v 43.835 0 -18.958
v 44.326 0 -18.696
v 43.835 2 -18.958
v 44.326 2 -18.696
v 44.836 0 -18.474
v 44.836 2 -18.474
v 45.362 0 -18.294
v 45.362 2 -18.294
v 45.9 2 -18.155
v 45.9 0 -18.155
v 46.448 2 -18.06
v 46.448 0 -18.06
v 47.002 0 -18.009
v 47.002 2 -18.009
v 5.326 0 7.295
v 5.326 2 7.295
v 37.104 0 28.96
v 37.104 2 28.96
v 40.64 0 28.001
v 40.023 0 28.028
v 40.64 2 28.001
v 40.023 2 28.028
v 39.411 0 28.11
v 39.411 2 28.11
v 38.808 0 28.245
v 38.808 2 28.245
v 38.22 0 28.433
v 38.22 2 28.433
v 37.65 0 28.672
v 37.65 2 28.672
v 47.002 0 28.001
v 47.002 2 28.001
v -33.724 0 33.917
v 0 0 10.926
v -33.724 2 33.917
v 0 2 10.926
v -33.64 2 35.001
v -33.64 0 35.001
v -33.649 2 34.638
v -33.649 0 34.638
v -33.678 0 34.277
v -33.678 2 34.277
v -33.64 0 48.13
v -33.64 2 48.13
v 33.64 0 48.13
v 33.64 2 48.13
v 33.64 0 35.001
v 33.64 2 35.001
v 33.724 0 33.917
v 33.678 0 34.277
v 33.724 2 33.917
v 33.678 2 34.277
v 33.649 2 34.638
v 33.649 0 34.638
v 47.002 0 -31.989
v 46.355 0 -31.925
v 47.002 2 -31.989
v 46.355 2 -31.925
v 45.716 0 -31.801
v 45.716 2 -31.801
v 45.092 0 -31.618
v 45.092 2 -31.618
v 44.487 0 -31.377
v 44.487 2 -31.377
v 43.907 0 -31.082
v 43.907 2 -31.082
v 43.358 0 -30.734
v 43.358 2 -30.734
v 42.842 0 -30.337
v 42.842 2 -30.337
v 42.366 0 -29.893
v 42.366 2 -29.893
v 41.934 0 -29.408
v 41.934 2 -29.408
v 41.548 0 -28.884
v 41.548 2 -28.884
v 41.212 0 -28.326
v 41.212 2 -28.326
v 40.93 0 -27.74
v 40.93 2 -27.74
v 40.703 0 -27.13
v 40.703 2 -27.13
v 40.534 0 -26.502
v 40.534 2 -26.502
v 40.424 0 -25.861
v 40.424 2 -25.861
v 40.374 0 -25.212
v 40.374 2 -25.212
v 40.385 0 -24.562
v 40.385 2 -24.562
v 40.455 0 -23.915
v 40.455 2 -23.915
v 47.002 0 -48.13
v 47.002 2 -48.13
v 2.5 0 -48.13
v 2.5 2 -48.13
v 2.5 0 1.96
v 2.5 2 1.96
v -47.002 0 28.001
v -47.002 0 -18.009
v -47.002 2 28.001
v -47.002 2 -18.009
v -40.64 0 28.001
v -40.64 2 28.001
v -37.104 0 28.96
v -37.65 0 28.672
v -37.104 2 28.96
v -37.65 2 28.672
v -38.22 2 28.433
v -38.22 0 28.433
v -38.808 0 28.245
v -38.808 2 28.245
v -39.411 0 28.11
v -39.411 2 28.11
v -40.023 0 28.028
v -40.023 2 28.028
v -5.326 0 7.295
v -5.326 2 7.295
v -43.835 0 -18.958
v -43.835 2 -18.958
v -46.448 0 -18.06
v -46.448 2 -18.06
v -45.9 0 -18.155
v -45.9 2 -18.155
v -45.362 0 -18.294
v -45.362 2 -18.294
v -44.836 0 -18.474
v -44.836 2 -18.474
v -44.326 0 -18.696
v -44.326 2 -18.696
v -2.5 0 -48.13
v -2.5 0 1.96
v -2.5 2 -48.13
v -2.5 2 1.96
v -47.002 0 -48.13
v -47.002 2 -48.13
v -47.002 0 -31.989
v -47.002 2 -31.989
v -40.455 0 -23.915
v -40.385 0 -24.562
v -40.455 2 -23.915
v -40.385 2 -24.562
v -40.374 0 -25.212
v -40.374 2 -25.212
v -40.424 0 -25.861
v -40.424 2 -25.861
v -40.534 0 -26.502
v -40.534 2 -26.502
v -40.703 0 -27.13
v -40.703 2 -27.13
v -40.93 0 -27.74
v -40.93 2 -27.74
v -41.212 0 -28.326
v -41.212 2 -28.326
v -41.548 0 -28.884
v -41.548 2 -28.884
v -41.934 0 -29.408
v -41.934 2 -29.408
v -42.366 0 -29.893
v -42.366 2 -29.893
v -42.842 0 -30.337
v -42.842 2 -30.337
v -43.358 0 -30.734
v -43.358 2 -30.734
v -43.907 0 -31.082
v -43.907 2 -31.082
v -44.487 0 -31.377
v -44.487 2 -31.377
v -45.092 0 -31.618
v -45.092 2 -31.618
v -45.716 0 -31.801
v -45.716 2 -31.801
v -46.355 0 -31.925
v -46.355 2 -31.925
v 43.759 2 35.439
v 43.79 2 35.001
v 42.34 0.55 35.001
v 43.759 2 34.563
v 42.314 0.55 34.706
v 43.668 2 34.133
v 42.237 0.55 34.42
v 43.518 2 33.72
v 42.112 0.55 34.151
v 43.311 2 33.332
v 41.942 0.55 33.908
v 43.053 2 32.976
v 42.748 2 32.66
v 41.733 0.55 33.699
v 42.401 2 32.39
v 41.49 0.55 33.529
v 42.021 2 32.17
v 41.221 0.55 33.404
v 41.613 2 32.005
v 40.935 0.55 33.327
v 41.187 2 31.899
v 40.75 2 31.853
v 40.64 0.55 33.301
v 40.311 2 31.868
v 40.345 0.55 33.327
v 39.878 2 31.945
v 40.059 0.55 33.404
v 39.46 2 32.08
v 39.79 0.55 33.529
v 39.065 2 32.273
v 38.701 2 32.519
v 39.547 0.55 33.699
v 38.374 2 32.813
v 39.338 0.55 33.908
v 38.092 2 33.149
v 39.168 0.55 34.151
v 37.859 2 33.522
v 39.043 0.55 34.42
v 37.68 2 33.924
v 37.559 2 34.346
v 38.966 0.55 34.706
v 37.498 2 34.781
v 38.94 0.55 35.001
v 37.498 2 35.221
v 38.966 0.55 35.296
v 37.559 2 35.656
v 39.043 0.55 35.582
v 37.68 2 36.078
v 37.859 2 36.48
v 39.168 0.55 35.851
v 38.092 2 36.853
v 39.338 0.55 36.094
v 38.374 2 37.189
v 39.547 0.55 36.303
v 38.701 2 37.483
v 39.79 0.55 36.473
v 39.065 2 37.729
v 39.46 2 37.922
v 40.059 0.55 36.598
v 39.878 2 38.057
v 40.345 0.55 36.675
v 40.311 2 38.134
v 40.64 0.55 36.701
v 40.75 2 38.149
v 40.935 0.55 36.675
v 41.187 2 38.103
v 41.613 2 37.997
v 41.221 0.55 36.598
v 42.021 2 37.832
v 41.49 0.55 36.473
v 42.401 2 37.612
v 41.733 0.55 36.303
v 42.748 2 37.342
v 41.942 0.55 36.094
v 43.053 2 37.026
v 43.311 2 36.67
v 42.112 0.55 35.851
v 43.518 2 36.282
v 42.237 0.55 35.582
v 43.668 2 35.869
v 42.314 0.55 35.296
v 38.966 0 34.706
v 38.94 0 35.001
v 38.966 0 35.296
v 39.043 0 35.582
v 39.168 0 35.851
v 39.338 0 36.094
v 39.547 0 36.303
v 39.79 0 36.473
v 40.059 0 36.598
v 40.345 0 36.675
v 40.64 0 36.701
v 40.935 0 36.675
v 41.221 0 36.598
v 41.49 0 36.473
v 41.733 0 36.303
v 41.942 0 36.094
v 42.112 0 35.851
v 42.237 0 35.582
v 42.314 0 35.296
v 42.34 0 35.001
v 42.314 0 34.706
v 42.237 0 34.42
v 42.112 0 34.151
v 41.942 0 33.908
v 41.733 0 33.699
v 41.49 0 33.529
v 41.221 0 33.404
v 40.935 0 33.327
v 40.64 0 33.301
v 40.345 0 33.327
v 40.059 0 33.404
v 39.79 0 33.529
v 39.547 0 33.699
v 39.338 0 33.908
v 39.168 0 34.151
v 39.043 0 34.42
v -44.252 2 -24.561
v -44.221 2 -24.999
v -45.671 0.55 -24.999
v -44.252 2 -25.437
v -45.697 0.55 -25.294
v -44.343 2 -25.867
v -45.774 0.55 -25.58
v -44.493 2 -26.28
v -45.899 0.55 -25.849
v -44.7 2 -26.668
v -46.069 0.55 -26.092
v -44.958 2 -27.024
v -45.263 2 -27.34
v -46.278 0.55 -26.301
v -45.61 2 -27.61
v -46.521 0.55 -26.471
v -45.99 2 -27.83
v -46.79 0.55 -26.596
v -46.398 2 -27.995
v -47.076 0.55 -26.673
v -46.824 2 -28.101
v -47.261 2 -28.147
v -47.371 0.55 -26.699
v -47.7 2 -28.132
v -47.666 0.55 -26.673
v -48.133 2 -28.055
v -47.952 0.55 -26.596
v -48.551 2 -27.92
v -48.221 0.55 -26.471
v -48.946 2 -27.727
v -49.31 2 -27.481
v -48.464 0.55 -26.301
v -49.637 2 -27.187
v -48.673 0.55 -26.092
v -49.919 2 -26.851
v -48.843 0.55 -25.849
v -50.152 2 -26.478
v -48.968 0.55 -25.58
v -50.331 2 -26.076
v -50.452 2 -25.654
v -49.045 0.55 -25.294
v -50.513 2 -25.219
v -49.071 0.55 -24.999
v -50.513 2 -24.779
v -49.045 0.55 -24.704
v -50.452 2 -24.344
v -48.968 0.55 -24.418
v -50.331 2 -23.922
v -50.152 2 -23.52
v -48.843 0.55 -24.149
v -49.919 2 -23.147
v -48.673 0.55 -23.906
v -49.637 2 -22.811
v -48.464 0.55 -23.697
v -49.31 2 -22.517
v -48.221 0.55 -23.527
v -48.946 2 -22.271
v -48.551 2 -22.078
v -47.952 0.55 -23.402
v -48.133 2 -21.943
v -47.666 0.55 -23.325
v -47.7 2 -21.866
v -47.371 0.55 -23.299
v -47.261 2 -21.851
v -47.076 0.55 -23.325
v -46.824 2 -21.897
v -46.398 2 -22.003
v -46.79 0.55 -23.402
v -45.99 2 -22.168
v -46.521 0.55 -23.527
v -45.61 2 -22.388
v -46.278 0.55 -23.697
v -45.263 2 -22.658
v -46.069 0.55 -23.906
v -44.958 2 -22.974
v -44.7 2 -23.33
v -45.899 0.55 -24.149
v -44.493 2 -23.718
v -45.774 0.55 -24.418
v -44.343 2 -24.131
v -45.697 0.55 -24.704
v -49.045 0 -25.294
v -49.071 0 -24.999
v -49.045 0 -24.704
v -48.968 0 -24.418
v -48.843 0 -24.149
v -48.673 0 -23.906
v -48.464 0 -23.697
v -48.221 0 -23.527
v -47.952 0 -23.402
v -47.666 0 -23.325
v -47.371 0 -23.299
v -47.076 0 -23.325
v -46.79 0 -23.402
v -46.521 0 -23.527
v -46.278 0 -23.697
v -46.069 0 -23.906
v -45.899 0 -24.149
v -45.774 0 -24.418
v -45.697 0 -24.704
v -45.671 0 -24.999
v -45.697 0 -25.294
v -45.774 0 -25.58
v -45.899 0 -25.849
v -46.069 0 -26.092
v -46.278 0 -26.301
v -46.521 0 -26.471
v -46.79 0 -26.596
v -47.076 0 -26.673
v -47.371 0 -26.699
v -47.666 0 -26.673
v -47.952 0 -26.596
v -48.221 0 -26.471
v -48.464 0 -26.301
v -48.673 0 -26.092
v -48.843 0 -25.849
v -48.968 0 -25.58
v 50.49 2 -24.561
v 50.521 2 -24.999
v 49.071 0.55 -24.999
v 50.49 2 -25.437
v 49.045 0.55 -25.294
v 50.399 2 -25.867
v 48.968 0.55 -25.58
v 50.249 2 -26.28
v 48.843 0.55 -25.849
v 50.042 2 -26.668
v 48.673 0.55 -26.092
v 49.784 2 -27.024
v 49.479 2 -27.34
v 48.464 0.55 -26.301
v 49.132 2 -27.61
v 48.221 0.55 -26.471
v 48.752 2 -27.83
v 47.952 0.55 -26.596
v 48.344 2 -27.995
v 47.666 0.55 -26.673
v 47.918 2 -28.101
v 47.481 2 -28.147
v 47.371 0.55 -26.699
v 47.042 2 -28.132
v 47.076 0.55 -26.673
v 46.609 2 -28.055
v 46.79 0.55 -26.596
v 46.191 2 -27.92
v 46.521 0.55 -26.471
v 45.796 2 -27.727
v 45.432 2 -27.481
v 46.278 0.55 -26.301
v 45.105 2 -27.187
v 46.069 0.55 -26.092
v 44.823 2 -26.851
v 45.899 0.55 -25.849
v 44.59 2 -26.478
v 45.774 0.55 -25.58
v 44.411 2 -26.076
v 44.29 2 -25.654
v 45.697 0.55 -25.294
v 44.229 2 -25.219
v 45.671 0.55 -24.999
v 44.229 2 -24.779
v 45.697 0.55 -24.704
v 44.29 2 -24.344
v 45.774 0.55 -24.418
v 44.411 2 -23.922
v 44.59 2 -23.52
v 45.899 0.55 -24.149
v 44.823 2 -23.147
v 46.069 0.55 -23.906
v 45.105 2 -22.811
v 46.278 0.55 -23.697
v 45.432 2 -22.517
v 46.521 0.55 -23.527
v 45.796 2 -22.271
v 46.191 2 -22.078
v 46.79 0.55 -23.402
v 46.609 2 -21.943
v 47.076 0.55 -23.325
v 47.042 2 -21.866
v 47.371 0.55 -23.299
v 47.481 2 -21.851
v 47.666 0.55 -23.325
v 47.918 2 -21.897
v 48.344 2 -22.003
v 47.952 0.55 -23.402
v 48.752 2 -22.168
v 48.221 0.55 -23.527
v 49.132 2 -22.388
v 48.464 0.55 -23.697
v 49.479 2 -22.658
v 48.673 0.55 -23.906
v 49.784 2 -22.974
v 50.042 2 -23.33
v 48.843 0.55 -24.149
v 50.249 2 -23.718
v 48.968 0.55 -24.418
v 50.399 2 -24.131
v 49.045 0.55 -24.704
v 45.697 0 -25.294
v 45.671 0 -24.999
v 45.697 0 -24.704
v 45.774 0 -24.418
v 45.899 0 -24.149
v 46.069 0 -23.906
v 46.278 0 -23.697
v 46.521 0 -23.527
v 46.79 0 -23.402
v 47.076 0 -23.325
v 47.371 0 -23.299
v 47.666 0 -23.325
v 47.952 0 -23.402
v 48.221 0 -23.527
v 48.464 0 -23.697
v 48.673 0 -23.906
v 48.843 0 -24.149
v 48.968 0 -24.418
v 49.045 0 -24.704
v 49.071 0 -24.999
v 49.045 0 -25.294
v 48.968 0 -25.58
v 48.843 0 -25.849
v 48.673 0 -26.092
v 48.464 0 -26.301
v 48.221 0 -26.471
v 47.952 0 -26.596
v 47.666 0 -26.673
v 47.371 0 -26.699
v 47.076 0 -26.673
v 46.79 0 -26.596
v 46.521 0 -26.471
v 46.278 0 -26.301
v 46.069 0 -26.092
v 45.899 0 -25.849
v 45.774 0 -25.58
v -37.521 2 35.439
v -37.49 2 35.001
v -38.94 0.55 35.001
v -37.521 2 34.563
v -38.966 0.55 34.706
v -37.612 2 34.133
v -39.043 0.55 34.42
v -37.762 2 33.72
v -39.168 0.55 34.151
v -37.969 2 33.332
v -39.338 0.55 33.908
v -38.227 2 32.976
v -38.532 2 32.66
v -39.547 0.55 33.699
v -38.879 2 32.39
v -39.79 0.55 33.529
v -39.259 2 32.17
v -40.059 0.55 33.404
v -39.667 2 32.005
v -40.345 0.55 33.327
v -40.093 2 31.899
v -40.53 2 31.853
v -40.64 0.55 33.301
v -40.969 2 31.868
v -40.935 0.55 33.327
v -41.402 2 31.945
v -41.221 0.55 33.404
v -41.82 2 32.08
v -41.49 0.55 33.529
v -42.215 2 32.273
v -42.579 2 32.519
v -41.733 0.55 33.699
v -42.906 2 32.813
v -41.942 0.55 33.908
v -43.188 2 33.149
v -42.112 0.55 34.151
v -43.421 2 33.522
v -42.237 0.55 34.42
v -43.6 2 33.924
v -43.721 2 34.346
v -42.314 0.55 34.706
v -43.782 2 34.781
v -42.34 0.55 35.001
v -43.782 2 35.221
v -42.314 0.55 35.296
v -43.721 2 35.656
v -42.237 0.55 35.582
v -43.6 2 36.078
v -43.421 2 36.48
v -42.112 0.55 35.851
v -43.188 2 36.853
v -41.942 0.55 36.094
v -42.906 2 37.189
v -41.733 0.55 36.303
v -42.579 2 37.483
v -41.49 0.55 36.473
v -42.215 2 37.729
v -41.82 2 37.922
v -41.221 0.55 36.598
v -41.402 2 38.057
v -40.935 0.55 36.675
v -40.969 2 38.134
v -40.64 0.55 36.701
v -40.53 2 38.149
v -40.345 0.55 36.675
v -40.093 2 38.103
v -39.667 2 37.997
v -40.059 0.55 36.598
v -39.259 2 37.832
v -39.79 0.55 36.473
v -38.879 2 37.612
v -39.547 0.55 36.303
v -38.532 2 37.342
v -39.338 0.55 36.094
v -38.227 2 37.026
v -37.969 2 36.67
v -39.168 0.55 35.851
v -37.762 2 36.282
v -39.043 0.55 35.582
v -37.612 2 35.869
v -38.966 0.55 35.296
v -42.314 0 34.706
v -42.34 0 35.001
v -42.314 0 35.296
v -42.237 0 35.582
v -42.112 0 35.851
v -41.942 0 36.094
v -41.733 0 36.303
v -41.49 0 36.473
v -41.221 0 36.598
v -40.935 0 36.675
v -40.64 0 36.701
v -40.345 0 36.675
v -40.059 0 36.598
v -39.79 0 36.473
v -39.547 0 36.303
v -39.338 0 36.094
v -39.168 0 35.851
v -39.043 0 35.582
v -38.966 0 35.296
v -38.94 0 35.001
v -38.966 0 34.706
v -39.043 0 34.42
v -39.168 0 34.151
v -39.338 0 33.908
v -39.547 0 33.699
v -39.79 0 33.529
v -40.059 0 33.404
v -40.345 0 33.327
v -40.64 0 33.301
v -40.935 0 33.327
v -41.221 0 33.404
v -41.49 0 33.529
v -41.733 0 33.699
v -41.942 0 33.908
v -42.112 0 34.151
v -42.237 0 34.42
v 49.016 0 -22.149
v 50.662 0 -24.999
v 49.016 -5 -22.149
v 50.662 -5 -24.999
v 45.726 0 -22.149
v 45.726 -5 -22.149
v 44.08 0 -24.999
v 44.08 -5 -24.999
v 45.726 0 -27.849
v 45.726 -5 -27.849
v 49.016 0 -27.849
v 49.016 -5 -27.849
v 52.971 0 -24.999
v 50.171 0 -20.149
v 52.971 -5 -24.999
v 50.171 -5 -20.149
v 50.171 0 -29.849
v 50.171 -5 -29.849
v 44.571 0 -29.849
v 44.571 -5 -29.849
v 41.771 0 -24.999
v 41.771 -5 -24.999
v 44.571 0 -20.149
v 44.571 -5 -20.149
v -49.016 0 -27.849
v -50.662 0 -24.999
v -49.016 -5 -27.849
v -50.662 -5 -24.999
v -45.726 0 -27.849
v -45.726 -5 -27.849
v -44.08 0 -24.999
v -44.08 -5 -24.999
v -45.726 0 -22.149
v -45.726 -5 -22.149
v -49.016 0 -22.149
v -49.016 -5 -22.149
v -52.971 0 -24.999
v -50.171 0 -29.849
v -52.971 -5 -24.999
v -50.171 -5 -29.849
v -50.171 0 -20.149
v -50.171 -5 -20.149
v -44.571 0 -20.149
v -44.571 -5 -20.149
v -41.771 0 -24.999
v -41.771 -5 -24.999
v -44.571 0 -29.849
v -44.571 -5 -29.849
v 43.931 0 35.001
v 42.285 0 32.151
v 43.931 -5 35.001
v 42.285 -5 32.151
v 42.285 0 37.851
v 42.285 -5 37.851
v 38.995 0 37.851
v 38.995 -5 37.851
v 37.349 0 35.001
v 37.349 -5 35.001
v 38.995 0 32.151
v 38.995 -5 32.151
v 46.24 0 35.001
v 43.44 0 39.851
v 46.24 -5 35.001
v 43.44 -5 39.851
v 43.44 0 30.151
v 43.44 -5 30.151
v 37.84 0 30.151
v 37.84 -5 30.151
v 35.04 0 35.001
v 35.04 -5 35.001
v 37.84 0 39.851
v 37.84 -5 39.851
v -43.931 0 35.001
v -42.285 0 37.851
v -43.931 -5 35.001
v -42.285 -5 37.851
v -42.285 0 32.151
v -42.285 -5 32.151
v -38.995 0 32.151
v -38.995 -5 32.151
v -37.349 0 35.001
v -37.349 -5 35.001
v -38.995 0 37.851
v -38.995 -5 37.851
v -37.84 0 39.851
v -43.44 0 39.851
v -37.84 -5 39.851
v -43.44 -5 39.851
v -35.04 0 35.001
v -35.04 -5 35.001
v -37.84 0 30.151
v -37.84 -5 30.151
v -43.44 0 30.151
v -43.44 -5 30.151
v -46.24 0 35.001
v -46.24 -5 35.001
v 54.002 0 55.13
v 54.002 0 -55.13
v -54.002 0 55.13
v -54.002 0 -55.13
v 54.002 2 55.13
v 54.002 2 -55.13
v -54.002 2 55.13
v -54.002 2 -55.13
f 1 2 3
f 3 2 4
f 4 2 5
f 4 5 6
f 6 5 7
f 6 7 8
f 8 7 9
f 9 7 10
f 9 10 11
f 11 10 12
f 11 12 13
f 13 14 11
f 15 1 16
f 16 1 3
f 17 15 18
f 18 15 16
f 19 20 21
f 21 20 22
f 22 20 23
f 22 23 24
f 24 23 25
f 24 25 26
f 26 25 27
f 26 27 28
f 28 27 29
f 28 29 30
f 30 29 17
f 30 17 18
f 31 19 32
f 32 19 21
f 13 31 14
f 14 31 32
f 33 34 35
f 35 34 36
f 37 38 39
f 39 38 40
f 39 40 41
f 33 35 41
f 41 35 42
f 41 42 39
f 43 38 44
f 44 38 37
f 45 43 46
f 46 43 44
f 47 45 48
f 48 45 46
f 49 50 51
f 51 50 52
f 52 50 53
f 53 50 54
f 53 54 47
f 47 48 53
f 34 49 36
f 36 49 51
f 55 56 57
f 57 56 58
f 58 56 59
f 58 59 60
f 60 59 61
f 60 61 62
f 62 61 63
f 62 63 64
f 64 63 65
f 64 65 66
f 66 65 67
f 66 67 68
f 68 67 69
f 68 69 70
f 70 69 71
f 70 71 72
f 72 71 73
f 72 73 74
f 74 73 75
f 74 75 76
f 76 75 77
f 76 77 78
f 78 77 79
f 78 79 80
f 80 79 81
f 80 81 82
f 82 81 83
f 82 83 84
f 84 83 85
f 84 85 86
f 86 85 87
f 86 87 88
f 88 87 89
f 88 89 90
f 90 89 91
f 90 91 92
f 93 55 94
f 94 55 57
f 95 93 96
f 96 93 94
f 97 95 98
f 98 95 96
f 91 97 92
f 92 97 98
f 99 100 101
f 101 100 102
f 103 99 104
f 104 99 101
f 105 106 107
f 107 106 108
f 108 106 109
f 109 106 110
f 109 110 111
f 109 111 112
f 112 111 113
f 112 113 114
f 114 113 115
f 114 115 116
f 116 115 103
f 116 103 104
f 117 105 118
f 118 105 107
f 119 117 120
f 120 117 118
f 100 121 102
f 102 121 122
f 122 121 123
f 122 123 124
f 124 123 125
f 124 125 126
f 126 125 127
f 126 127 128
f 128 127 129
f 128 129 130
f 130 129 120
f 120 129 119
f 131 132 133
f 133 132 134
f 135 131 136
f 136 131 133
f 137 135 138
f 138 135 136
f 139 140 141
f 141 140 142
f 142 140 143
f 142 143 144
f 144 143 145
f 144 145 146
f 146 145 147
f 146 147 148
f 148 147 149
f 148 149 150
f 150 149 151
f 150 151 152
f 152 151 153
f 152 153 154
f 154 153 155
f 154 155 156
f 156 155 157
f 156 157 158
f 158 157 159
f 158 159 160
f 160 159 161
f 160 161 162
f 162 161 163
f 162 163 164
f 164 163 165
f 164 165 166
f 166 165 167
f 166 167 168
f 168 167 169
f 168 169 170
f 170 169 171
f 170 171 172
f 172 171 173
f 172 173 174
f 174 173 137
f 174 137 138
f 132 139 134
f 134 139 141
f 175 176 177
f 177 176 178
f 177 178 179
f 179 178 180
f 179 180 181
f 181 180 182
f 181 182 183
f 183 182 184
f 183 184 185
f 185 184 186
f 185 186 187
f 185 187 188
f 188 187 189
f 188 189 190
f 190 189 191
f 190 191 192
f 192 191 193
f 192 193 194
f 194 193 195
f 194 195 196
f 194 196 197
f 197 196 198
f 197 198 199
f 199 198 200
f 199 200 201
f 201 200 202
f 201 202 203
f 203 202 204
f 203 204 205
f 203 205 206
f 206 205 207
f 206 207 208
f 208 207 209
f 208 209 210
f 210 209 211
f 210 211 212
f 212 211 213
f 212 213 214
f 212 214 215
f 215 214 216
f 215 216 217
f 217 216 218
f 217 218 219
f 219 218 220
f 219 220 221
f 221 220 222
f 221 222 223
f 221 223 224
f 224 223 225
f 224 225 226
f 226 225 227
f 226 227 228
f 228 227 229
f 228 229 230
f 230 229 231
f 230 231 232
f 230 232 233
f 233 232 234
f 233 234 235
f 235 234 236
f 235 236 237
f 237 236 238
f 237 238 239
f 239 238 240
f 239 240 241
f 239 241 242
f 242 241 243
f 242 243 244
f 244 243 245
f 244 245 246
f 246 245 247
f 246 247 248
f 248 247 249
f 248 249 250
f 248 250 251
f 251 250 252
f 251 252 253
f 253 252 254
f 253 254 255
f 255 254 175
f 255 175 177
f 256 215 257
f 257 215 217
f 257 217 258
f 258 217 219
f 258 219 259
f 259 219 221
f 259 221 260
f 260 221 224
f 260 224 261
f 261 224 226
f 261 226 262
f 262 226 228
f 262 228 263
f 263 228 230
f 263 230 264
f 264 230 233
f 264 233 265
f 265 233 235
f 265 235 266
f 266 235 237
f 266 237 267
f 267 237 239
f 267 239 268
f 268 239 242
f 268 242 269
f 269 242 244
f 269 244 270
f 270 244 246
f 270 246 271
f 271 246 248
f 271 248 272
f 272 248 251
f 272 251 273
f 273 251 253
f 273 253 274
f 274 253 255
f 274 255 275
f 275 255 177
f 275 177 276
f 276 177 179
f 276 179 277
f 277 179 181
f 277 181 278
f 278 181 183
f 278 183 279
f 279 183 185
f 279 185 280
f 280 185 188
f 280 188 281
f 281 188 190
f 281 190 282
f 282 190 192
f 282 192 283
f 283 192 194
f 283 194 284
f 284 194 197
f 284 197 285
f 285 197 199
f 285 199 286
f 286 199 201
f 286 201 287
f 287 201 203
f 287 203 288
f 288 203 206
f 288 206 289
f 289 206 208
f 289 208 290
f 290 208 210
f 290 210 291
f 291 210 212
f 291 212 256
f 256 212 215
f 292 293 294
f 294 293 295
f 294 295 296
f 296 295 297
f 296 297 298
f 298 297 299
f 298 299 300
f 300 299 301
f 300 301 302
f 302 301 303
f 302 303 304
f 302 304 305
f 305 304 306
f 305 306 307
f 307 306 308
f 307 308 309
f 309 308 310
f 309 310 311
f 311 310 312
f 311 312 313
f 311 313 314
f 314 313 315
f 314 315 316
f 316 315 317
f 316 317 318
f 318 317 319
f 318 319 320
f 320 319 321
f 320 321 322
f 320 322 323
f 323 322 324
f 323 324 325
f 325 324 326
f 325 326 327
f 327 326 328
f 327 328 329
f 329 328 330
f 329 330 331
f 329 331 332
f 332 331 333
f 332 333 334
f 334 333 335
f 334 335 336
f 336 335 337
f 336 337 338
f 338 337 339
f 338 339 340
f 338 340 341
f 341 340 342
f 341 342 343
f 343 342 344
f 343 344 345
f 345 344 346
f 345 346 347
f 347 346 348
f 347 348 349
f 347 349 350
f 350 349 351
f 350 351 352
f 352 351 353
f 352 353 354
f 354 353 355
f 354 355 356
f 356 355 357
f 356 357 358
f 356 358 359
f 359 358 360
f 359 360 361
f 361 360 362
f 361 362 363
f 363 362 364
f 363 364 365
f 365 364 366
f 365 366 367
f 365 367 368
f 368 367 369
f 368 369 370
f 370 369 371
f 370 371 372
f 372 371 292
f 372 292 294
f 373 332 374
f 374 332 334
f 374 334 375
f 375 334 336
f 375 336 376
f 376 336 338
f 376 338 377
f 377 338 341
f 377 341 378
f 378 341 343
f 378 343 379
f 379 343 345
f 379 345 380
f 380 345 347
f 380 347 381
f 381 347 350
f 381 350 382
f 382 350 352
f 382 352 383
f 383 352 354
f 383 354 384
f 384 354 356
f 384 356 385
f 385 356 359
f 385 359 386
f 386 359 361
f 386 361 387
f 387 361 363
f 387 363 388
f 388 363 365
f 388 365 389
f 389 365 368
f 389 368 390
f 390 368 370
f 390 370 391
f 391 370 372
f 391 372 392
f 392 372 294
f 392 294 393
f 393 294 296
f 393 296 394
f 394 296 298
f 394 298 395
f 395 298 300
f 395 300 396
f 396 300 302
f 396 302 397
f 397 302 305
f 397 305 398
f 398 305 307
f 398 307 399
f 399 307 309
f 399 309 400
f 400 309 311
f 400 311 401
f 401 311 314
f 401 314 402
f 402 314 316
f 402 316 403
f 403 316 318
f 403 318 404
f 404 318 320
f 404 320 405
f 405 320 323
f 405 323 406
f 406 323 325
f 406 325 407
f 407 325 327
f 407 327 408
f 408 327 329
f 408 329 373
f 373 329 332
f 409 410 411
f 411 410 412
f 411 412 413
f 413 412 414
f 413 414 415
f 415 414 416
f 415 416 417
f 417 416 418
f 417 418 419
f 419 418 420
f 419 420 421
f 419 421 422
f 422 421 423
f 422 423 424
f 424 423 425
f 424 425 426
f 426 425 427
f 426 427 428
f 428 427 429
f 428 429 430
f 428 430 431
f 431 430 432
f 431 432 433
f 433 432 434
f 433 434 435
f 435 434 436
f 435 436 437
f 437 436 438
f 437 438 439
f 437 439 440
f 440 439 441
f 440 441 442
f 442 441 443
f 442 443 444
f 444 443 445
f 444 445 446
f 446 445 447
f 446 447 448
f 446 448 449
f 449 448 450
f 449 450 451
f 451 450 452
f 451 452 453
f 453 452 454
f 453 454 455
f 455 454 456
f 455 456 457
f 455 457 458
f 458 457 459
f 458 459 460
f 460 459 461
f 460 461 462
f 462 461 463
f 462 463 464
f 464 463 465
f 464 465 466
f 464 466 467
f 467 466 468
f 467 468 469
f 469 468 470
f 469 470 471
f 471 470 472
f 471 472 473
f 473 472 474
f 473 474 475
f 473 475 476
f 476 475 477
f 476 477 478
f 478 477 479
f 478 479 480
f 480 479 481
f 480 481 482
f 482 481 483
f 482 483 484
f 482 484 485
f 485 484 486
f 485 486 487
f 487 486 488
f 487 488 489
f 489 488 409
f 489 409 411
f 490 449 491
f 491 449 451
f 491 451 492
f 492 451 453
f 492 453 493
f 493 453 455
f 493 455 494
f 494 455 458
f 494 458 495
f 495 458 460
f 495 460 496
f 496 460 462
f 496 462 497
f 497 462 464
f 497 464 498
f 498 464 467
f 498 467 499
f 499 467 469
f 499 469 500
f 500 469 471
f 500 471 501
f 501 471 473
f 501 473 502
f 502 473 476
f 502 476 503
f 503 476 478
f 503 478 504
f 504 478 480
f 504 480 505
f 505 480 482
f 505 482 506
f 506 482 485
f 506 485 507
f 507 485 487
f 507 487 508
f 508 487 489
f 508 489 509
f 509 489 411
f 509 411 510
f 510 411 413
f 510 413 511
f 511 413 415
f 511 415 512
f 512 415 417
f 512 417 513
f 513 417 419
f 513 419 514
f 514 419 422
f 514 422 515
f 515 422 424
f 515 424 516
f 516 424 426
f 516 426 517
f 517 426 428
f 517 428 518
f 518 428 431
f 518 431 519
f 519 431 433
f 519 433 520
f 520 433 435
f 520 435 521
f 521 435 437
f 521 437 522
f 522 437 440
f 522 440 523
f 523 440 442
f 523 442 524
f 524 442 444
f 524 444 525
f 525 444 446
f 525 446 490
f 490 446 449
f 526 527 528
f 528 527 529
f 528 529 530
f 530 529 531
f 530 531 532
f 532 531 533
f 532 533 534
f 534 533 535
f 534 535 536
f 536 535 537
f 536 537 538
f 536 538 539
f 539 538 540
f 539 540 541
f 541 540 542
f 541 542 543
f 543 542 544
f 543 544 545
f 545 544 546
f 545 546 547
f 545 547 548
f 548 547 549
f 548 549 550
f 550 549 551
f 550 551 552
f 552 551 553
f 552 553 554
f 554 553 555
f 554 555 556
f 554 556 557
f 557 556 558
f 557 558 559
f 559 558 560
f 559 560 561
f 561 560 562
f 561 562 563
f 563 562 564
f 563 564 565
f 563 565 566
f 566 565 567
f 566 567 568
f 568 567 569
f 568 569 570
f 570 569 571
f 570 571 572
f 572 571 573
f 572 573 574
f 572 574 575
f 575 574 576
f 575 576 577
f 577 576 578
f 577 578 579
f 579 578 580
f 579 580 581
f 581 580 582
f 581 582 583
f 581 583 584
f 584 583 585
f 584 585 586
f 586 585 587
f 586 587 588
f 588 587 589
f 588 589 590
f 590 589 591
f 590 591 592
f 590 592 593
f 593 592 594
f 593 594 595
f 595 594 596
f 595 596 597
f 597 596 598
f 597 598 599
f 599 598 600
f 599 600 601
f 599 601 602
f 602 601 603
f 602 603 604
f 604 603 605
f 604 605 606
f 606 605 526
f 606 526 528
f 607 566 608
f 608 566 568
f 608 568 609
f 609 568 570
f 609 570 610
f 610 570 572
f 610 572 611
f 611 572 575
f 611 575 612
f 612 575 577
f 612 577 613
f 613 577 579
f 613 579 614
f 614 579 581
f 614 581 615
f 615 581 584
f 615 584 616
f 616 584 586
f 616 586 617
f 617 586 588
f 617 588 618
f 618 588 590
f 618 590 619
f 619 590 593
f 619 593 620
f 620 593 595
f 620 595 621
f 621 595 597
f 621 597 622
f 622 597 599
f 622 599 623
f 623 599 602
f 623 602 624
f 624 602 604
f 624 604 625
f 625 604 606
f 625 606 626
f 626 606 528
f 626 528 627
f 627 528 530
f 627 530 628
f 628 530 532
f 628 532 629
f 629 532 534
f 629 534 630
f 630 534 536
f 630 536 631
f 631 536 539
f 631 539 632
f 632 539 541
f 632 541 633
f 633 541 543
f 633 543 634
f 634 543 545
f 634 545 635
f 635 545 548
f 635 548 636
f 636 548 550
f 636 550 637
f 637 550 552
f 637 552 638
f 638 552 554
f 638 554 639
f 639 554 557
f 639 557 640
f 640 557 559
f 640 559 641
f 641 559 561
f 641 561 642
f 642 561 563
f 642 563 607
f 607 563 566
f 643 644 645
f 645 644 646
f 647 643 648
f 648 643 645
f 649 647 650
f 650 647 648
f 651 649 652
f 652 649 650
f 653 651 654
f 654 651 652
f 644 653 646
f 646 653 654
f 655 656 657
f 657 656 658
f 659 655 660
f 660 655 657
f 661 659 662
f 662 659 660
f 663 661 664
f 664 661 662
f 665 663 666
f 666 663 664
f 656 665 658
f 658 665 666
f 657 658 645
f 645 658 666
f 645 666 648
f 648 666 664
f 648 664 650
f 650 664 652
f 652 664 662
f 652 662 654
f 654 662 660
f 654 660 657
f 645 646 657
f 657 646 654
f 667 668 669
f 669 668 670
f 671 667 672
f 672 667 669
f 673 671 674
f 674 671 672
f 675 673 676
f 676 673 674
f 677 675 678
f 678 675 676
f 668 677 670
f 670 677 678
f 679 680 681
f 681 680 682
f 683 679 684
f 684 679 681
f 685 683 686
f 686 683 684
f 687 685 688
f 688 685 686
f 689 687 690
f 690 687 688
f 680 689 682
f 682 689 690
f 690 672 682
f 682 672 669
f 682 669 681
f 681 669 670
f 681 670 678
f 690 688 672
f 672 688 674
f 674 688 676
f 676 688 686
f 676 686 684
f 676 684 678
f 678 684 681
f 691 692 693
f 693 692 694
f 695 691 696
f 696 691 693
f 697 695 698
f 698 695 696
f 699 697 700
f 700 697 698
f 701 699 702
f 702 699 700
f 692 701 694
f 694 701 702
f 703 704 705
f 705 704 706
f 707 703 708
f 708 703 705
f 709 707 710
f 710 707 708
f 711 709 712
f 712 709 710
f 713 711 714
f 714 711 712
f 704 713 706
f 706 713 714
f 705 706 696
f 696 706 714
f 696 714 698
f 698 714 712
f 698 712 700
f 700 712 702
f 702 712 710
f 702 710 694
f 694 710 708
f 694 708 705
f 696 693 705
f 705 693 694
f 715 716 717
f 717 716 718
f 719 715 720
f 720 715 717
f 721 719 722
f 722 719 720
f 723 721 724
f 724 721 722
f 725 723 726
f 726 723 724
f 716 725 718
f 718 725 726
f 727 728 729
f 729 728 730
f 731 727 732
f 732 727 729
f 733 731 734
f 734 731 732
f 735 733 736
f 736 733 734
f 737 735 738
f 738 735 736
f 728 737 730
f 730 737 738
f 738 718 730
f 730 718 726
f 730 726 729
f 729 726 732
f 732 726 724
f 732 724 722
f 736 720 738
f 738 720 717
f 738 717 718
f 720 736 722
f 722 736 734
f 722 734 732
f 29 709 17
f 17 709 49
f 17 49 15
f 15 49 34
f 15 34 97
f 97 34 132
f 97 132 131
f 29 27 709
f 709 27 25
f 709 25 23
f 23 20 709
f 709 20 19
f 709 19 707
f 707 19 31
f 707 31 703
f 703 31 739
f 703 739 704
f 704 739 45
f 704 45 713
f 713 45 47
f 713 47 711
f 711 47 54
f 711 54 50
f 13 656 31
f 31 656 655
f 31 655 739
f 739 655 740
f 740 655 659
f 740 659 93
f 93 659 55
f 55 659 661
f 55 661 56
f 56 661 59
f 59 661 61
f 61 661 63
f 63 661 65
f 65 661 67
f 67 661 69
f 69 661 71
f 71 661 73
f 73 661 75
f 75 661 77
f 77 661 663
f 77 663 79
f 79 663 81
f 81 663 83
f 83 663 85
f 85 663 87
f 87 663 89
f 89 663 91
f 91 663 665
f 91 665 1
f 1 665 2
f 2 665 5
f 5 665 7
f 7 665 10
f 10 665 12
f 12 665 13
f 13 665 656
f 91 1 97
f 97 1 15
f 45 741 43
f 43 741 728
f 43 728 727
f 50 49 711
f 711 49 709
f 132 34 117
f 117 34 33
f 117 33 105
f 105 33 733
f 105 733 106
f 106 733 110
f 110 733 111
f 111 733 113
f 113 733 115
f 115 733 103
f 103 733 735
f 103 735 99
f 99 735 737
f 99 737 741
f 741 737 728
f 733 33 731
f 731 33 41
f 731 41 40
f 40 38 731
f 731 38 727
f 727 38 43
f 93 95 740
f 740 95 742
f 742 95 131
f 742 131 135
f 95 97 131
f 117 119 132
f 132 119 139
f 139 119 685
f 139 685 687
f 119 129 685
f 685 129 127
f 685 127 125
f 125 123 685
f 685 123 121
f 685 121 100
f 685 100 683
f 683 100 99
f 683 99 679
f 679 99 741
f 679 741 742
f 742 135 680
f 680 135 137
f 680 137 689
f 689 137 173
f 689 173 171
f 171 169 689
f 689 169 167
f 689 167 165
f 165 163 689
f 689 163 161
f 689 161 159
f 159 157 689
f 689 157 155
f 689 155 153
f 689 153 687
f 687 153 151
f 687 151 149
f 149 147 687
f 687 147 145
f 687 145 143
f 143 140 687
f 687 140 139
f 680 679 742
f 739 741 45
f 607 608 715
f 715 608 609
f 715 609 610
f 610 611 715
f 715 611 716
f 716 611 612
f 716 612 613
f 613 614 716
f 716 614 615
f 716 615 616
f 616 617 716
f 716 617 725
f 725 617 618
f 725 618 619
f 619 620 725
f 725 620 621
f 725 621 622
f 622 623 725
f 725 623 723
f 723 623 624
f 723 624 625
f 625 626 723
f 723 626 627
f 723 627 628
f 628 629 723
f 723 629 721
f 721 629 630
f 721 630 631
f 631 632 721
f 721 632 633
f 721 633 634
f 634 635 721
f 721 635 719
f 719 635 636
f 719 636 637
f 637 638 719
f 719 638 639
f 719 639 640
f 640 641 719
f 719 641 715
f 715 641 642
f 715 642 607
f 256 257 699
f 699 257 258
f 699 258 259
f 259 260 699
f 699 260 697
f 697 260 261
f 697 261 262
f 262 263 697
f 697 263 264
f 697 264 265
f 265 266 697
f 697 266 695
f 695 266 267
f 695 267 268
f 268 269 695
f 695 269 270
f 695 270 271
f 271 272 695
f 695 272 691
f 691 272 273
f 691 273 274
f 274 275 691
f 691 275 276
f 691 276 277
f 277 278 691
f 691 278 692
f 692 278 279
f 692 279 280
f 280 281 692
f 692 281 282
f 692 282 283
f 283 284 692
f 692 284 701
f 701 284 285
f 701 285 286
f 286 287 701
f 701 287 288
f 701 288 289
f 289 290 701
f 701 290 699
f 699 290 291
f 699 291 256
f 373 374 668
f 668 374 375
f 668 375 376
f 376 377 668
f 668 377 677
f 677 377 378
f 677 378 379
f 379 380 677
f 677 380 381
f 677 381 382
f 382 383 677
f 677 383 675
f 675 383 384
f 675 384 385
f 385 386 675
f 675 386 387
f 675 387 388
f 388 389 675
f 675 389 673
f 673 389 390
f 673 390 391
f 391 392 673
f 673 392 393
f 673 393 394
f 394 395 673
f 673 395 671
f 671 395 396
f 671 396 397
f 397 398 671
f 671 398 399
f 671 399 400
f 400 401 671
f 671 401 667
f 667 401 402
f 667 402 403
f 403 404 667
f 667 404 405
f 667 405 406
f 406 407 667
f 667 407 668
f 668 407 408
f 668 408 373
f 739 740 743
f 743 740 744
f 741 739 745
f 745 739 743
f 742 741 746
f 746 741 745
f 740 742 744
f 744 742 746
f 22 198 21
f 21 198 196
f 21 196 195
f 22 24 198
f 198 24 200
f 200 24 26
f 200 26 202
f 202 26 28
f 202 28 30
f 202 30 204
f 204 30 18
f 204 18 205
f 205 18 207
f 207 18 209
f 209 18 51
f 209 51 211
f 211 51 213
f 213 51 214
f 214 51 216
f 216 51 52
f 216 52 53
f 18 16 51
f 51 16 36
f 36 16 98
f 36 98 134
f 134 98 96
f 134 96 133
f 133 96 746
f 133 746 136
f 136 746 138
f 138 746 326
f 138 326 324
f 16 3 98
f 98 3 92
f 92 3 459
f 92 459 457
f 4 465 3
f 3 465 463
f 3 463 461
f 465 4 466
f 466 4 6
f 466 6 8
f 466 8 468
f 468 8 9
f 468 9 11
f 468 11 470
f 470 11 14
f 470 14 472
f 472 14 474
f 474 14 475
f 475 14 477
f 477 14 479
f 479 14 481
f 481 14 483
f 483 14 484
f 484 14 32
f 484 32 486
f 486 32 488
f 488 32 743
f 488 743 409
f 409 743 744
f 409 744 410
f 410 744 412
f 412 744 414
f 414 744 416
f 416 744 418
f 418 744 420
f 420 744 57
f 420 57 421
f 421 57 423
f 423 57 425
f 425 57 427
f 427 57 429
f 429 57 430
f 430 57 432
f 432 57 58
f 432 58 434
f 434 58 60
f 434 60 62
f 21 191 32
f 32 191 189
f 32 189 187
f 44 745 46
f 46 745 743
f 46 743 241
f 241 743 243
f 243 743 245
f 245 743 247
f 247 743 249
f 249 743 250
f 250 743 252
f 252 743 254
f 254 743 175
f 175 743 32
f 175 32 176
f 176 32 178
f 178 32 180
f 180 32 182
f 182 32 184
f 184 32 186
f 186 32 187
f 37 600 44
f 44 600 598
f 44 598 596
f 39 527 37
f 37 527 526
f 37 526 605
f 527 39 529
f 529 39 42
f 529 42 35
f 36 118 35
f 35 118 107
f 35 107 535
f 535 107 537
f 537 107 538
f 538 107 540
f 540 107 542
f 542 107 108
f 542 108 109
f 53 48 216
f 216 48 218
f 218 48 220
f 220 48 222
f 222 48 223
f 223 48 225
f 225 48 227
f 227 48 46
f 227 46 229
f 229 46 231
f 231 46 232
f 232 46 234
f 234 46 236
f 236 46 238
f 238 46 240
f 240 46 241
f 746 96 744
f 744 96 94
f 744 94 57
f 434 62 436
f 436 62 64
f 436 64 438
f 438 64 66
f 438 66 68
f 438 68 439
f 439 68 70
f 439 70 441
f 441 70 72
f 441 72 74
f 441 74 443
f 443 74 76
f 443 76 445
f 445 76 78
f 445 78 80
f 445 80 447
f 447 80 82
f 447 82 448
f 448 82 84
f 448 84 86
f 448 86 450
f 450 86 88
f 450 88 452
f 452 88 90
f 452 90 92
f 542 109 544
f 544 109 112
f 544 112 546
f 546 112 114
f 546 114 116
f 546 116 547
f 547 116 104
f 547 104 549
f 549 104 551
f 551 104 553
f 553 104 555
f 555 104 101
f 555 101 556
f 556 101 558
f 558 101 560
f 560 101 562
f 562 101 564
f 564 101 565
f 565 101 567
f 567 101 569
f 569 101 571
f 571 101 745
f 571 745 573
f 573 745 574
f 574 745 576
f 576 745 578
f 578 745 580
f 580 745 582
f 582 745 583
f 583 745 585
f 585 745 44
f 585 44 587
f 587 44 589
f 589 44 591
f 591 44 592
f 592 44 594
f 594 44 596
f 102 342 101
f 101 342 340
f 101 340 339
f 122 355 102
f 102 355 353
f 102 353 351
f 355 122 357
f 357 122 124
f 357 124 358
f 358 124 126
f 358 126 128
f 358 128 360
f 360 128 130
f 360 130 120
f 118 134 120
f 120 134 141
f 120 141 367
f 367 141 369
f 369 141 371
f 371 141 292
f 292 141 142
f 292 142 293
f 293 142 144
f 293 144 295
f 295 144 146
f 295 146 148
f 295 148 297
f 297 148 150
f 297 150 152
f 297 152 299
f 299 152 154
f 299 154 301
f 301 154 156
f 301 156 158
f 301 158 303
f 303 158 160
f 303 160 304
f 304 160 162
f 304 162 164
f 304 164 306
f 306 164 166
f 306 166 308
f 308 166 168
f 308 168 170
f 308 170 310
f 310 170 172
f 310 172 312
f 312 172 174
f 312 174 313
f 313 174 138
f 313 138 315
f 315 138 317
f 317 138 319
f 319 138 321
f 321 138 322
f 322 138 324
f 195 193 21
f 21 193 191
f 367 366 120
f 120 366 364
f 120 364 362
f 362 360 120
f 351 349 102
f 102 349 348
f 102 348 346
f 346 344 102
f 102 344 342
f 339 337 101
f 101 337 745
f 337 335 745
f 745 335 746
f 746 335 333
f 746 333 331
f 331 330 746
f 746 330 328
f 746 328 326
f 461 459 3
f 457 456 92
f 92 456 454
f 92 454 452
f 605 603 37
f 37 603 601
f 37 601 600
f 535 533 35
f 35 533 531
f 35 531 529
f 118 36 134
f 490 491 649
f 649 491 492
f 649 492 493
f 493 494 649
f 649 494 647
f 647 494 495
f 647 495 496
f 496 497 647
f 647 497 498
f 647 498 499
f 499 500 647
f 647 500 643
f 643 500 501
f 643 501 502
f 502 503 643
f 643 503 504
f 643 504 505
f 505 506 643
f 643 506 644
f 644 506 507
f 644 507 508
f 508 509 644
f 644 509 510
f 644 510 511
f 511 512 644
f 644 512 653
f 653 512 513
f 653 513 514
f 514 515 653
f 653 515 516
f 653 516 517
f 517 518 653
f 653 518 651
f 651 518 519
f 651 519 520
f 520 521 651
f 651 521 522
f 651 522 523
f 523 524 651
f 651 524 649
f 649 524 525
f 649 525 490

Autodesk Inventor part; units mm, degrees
ref_plane "YZ Plane" through (0, 0, 0) normal (1, 0, 0) x (0, 1, 0)
ref_plane "XZ Plane" through (0, 0, 0) normal (0, 1, 0) x (-1, 0, 0)
ref_plane "XY Plane" through (0, 0, 0) normal (0, 0, 1) x (1, 0, 0)
sketch "Sketch1" plane through (0, 0, 0) normal (0, 1, 0) x (-1, 0, 0)
  circle A0 centre (0, 0) radius 80 construction
  line L0 (56.002, 57.1295) -> (-56.002, 57.1295) construction
  line L1 (-56.002, 57.1295) -> (-56.002, -57.1295) construction
  line L2 (-56.002, -57.1295) -> (56.002, -57.1295) construction
  line L3 (56.002, -57.1295) -> (56.002, 57.1295) construction
  line L4 (56.002, 57.1295) -> (-56.002, -57.1295) construction
  line L5 (-56.002, 57.1295) -> (56.002, -57.1295) construction
  line L6 (54.002, 55.1295) -> (-54.002, 55.1295)
  line L7 (-54.002, 55.1295) -> (-54.002, -55.1295)
  line L8 (-54.002, -55.1295) -> (54.002, -55.1295)
  line L9 (54.002, -55.1295) -> (54.002, 55.1295)
  dimension "d0" = 160
  dimension "d1" = 2
extrude "Extrusion1" add sketch "Sketch1" along normal blind 2
sketch "Sketch2" plane through (0, 0, 0) normal (0, -1, 0) x (1, 0, 0)
  line L0 (-39.0523, 32.251) -> (-42.2277, 32.251) construction
  line L1 (-42.2277, 32.251) -> (-43.8154, 35.001) construction
  line L2 (-43.8154, 35.001) -> (-42.2277, 37.751) construction
  line L3 (-42.2277, 37.751) -> (-39.0523, 37.751) construction
  line L4 (-39.0523, 37.751) -> (-37.4646, 35.001) construction
  line L5 (-37.4646, 35.001) -> (-39.0523, 32.251) construction
  line L6 (42.2277, 32.251) -> (39.0523, 32.251) construction
  line L7 (39.0523, 32.251) -> (37.4646, 35.001) construction
  line L8 (37.4646, 35.001) -> (39.0523, 37.751) construction
  line L9 (39.0523, 37.751) -> (42.2277, 37.751) construction
  line L10 (42.2277, 37.751) -> (43.8154, 35.001) construction
  line L11 (43.8154, 35.001) -> (42.2277, 32.251) construction
  line L12 (48.9587, -27.749) -> (45.7833, -27.749) construction
  line L13 (45.7833, -27.749) -> (44.1956, -24.999) construction
  line L14 (44.1956, -24.999) -> (45.7833, -22.249) construction
  line L15 (45.7833, -22.249) -> (48.9587, -22.249) construction
  line L16 (48.9587, -22.249) -> (50.5464, -24.999) construction
  line L17 (50.5464, -24.999) -> (48.9587, -27.749) construction
  line L18 (-45.7833, -22.249) -> (-44.1956, -24.999) construction
  line L19 (-44.1956, -24.999) -> (-45.7833, -27.749) construction
  line L20 (-45.7833, -27.749) -> (-48.9587, -27.749) construction
  line L21 (-48.9587, -27.749) -> (-50.5464, -24.999) construction
  line L22 (-50.5464, -24.999) -> (-48.9587, -22.249) construction
  line L23 (-48.9587, -22.249) -> (-45.7833, -22.249) construction
  line L24 (-47.371, -24.999) -> (47.371, -24.999) construction
  line L25 (-40.64, 35.001) -> (40.64, 35.001) construction
  line L26 (-75.6027, 0) -> (75.6027, 0) construction
  line L27 (0, -77.1813) -> (0, 77.1813) construction
  line L28 (-37.3491, 35.001) -> (-38.9946, 37.851)
  line L29 (-38.9946, 37.851) -> (-42.2854, 37.851)
  line L30 (-42.2854, 37.851) -> (-43.9309, 35.001)
  line L31 (-43.9309, 35.001) -> (-42.2854, 32.151)
  line L32 (-42.2854, 32.151) -> (-38.9946, 32.151)
  line L33 (-38.9946, 32.151) -> (-37.3491, 35.001)
  line L34 (49.0164, -27.849) -> (45.7256, -27.849)
  line L35 (45.7256, -27.849) -> (44.0801, -24.999)
  line L36 (44.0801, -24.999) -> (45.7256, -22.149)
  line L37 (45.7256, -22.149) -> (49.0164, -22.149)
  line L38 (49.0164, -22.149) -> (50.6619, -24.999)
  line L39 (50.6619, -24.999) -> (49.0164, -27.849)
  line L40 (43.9309, 35.001) -> (42.2854, 37.851)
  line L41 (42.2854, 37.851) -> (38.9946, 37.851)
  line L42 (38.9946, 37.851) -> (37.3491, 35.001)
  line L43 (37.3491, 35.001) -> (38.9946, 32.151)
  line L44 (38.9946, 32.151) -> (42.2854, 32.151)
  line L45 (42.2854, 32.151) -> (43.9309, 35.001)
  line L46 (-45.7256, -27.849) -> (-44.0801, -24.999)
  line L47 (-44.0801, -24.999) -> (-45.7256, -22.149)
  line L48 (-45.7256, -22.149) -> (-49.0164, -22.149)
  line L49 (-49.0164, -22.149) -> (-50.6619, -24.999)
  line L50 (-50.6619, -24.999) -> (-49.0164, -27.849)
  line L51 (-49.0164, -27.849) -> (-45.7256, -27.849)
  line L52 (-35.0397, 35.001) -> (-37.8399, 39.851)
  line L53 (-37.8399, 39.851) -> (-43.4401, 39.851)
  line L54 (-43.4401, 39.851) -> (-46.2403, 35.001)
  line L55 (-46.2403, 35.001) -> (-43.4401, 30.151)
  line L56 (-43.4401, 30.151) -> (-37.8399, 30.151)
  line L57 (-37.8399, 30.151) -> (-35.0397, 35.001)
  line L58 (46.2403, 35.001) -> (43.4401, 39.851)
  line L59 (43.4401, 39.851) -> (37.8399, 39.851)
  line L60 (37.8399, 39.851) -> (35.0397, 35.001)
  line L61 (35.0397, 35.001) -> (37.8399, 30.151)
  line L62 (37.8399, 30.151) -> (43.4401, 30.151)
  line L63 (43.4401, 30.151) -> (46.2403, 35.001)
  line L64 (44.5709, -29.849) -> (50.1711, -29.849)
  line L65 (50.1711, -29.849) -> (52.9713, -24.999)
  line L66 (52.9713, -24.999) -> (50.1711, -20.149)
  line L67 (50.1711, -20.149) -> (44.5709, -20.149)
  line L68 (44.5709, -20.149) -> (41.7707, -24.999)
  line L69 (41.7707, -24.999) -> (44.5709, -29.849)
  line L70 (-44.5709, -29.849) -> (-41.7707, -24.999)
  line L71 (-41.7707, -24.999) -> (-44.5709, -20.149)
  line L72 (-44.5709, -20.149) -> (-50.1711, -20.149)
  line L73 (-50.1711, -20.149) -> (-52.9713, -24.999)
  line L74 (-52.9713, -24.999) -> (-50.1711, -29.849)
  line L75 (-50.1711, -29.849) -> (-44.5709, -29.849)
  point P0 (0, 0)
  point P1 (0, 35.001)
  point P2 (0, -24.999)
  dimension "d4" = 5.5
  dimension "d5" = 5.5
  dimension "d6" = 5.5
  dimension "d7" = 5.5
  dimension "d8" = 81.28
  dimension "d9" = 94.742
  dimension "d10" = 24.999
  dimension "d11" = 35.001
  dimension "d12" = 0.1
  dimension "d13" = 0.1
  dimension "d14" = 0.1
  dimension "d15" = 0.1
  dimension "d16" = 2
  dimension "d17" = 2
  dimension "d18" = 2
  dimension "d19" = 2
extrude "Extrusion2" add sketch "Sketch2" along normal blind 5
sketch "Sketch3" plane through (0, 2, 0) normal (0, 1, 0) x (1, 0, 0)
  line L0 (-42.2854, -37.851) -> (-43.9309, -35.001) construction
  line L1 (-43.9309, -35.001) -> (-42.2854, -32.151) construction
  line L2 (-42.2854, -32.151) -> (-38.9946, -32.151) construction
  line L3 (-38.9946, -32.151) -> (-37.3491, -35.001) construction
  line L4 (-37.3491, -35.001) -> (-38.9946, -37.851) construction
  line L5 (-38.9946, -37.851) -> (-42.2854, -37.851) construction
  line L6 (-50.6619, 24.999) -> (-49.0164, 27.849) construction
  line L7 (-49.0164, 27.849) -> (-45.7256, 27.849) construction
  line L8 (-45.7256, 27.849) -> (-44.0801, 24.999) construction
  line L9 (-44.0801, 24.999) -> (-45.7256, 22.149) construction
  line L10 (-45.7256, 22.149) -> (-49.0164, 22.149) construction
  line L11 (-49.0164, 22.149) -> (-50.6619, 24.999) construction
  line L12 (50.6619, 24.999) -> (49.0164, 22.149) construction
  line L13 (49.0164, 22.149) -> (45.7256, 22.149) construction
  line L14 (45.7256, 22.149) -> (44.0801, 24.999) construction
  line L15 (44.0801, 24.999) -> (45.7256, 27.849) construction
  line L16 (45.7256, 27.849) -> (49.0164, 27.849) construction
  line L17 (49.0164, 27.849) -> (50.6619, 24.999) construction
  line L18 (42.2854, -32.151) -> (43.9309, -35.001) construction
  line L19 (43.9309, -35.001) -> (42.2854, -37.851) construction
  line L20 (42.2854, -37.851) -> (38.9946, -37.851) construction
  line L21 (38.9946, -37.851) -> (37.3491, -35.001) construction
  line L22 (37.3491, -35.001) -> (38.9946, -32.151) construction
  line L23 (38.9946, -32.151) -> (42.2854, -32.151) construction
  line L24 (47.371, 27.849) -> (47.371, 22.149) construction
  line L25 (49.0164, 22.149) -> (50.6619, 24.999) construction
  line L26 (-49.0164, 22.149) -> (-50.6619, 24.999) construction
  line L27 (50.6619, 24.999) -> (-50.6619, 24.999) construction
  line L28 (-49.0164, 27.849) -> (-45.7256, 27.849) construction
  line L29 (-47.371, 27.849) -> (-47.371, 22.149) construction
  line L30 (-45.7256, 22.149) -> (-49.0164, 22.149) construction
  line L31 (-38.9946, -37.851) -> (-42.2854, -37.851) construction
  line L32 (-40.64, -37.851) -> (-40.64, -32.151) construction
  line L33 (-43.9309, -35.001) -> (43.9309, -35.001) construction
  line L34 (38.9946, -32.151) -> (42.2854, -32.151) construction
  line L35 (40.64, -32.151) -> (40.64, -37.851) construction
  point P0 (0, 0)
  point P1 (-47.371, 24.999)
  point P2 (47.371, 24.999)
  point P3 (40.64, -35.001)
  point P4 (-40.64, -35.001)
hole "Hole1" at (-47.371, 2, -24.999) at (47.371, 2, -24.999) at (40.64, 2, 35.001) at (-40.64, 2, 35.001) direction (0, -1, 0) diameter 3.4 end through all countersink diameter 6.3 countersink angle 90 clearance for "Countersunk Flat Head Screw ISO 2009/7046" size "M3" standard "ISO"
sketch "Sketch4" plane through (0, 2, 0) normal (0, 1, 0) x (1, 0, 0)
  circle A0 centre (47.371, 24.999) radius 3.15 construction
  circle A1 centre (-47.371, 24.999) radius 3.15 construction
  line L0 (54.002, 55.1295) -> (-54.002, 55.1295) construction
  circle A2 centre (40.64, -35.001) radius 3.15 construction
  circle A3 centre (-40.64, -35.001) radius 3.15 construction
  line L1 (-54.002, -55.1295) -> (54.002, -55.1295) construction
  circle A4 centre (-47.371, 24.999) radius 1.7 construction
  circle A5 centre (40.64, -35.001) radius 1.7 construction
  line L2 (-47.371, 24.999) -> (40.64, -35.001) construction
  line L3 (47.371, 24.999) -> (-40.64, -35.001) construction
  line L4 (-40.4554, 23.9152) -> (37.1041, -28.9597)
  line L5 (-43.8351, 18.9577) -> (33.7244, -33.9172)
  line L6 (43.8351, 18.9577) -> (-33.7244, -33.9172)
  line L7 (40.4554, 23.9152) -> (-37.1041, -28.9597)
  line L8 (-2.5, 48.1295) -> (2.5, 48.1295)
  line L9 (2.5, 48.1295) -> (2.5, -1.9602)
  line L10 (2.5, -1.9602) -> (-2.5, -1.9602)
  line L11 (-2.5, -1.9602) -> (-2.5, 48.1295)
  circle A6 centre (-47.371, 24.999) radius 7
  circle A7 centre (47.371, 24.999) radius 1.7 projected
  circle A8 centre (47.371, 24.999) radius 7
  circle A9 centre (40.64, -35.001) radius 7
  circle A10 centre (-40.64, -35.001) radius 7
  circle A11 centre (40.64, -35.001) radius 3.15 construction
  circle A12 centre (-47.371, 24.999) radius 3.15 construction
  circle A13 centre (47.371, 24.999) radius 3.15 construction
  circle A14 centre (-40.64, -35.001) radius 3.15 construction
  line L12 (54.002, 55.1295) -> (-54.002, 55.1295) construction
  line L13 (-54.002, 55.1295) -> (-54.002, -55.1295) construction
  line L14 (-54.002, -55.1295) -> (54.002, -55.1295) construction
  line L15 (54.002, -55.1295) -> (54.002, 55.1295) construction
  line L16 (-47.002, -48.1295) -> (-47.002, 48.1295)
  line L17 (-47.002, 48.1295) -> (47.002, 48.1295)
  line L18 (47.002, 48.1295) -> (47.002, -48.1295)
  line L19 (47.002, -48.1295) -> (-47.002, -48.1295)
  line L20 (40.64, -28.001) -> (47.002, -28.001)
  line L21 (-40.64, -28.001) -> (-47.002, -28.001)
  line L22 (-33.64, -35.001) -> (-33.64, -48.1295)
  line L23 (33.64, -35.001) -> (33.64, -48.1295)
  point P0 (0, -10.9262)
  point P1 (5.3259, -7.2954)
  point P2 (-5.3259, -7.2954)
  point P3 (-47.002, 18.0087)
  point P4 (47.002, 18.0087)
  point P5 (47.002, 31.9893)
  point P6 (-47.002, 31.9893)
  dimension "d43" = 3
  dimension "d44" = 3
  dimension "d45" = 3
  dimension "d46" = 3
  dimension "d47" = 5
  dimension "d50" = 14
  dimension "d51" = 14
  dimension "d52" = 14
  dimension "d53" = 14
  dimension "d54" = 7
extrude "Extrusion3" cut sketch "Sketch4" against normal through all contours A6 L16 L17 L11 L4 | L5 L7 A10 L21 L16 A6 | L9 L17 L18 A8 L7 | L6 A8 L18 L20 A9 L4 | L5 A9 L23 L19 L22 A10 L6
equation "\"d5\" = d4"
equation "\"d6\" = d4"
equation "\"d7\" = d4"
equation "\"d17\" = d16"
equation "\"d18\" = d16"
equation "\"d19\" = d16"
equation "\"d44\" = d43"
equation "\"d45\" = d43"
equation "\"d46\" = d43"
equation "\"d50\" = 2 * d35"
equation "\"d51\" = 2 * d35"
equation "\"d52\" = 2 * d35"
equation "\"d53\" = 2 * d35"
equation "\"d54\" = d35"
equation "\"d39\" = d35"
equation "\"d35\" = 7"
properties part number "top_base"
